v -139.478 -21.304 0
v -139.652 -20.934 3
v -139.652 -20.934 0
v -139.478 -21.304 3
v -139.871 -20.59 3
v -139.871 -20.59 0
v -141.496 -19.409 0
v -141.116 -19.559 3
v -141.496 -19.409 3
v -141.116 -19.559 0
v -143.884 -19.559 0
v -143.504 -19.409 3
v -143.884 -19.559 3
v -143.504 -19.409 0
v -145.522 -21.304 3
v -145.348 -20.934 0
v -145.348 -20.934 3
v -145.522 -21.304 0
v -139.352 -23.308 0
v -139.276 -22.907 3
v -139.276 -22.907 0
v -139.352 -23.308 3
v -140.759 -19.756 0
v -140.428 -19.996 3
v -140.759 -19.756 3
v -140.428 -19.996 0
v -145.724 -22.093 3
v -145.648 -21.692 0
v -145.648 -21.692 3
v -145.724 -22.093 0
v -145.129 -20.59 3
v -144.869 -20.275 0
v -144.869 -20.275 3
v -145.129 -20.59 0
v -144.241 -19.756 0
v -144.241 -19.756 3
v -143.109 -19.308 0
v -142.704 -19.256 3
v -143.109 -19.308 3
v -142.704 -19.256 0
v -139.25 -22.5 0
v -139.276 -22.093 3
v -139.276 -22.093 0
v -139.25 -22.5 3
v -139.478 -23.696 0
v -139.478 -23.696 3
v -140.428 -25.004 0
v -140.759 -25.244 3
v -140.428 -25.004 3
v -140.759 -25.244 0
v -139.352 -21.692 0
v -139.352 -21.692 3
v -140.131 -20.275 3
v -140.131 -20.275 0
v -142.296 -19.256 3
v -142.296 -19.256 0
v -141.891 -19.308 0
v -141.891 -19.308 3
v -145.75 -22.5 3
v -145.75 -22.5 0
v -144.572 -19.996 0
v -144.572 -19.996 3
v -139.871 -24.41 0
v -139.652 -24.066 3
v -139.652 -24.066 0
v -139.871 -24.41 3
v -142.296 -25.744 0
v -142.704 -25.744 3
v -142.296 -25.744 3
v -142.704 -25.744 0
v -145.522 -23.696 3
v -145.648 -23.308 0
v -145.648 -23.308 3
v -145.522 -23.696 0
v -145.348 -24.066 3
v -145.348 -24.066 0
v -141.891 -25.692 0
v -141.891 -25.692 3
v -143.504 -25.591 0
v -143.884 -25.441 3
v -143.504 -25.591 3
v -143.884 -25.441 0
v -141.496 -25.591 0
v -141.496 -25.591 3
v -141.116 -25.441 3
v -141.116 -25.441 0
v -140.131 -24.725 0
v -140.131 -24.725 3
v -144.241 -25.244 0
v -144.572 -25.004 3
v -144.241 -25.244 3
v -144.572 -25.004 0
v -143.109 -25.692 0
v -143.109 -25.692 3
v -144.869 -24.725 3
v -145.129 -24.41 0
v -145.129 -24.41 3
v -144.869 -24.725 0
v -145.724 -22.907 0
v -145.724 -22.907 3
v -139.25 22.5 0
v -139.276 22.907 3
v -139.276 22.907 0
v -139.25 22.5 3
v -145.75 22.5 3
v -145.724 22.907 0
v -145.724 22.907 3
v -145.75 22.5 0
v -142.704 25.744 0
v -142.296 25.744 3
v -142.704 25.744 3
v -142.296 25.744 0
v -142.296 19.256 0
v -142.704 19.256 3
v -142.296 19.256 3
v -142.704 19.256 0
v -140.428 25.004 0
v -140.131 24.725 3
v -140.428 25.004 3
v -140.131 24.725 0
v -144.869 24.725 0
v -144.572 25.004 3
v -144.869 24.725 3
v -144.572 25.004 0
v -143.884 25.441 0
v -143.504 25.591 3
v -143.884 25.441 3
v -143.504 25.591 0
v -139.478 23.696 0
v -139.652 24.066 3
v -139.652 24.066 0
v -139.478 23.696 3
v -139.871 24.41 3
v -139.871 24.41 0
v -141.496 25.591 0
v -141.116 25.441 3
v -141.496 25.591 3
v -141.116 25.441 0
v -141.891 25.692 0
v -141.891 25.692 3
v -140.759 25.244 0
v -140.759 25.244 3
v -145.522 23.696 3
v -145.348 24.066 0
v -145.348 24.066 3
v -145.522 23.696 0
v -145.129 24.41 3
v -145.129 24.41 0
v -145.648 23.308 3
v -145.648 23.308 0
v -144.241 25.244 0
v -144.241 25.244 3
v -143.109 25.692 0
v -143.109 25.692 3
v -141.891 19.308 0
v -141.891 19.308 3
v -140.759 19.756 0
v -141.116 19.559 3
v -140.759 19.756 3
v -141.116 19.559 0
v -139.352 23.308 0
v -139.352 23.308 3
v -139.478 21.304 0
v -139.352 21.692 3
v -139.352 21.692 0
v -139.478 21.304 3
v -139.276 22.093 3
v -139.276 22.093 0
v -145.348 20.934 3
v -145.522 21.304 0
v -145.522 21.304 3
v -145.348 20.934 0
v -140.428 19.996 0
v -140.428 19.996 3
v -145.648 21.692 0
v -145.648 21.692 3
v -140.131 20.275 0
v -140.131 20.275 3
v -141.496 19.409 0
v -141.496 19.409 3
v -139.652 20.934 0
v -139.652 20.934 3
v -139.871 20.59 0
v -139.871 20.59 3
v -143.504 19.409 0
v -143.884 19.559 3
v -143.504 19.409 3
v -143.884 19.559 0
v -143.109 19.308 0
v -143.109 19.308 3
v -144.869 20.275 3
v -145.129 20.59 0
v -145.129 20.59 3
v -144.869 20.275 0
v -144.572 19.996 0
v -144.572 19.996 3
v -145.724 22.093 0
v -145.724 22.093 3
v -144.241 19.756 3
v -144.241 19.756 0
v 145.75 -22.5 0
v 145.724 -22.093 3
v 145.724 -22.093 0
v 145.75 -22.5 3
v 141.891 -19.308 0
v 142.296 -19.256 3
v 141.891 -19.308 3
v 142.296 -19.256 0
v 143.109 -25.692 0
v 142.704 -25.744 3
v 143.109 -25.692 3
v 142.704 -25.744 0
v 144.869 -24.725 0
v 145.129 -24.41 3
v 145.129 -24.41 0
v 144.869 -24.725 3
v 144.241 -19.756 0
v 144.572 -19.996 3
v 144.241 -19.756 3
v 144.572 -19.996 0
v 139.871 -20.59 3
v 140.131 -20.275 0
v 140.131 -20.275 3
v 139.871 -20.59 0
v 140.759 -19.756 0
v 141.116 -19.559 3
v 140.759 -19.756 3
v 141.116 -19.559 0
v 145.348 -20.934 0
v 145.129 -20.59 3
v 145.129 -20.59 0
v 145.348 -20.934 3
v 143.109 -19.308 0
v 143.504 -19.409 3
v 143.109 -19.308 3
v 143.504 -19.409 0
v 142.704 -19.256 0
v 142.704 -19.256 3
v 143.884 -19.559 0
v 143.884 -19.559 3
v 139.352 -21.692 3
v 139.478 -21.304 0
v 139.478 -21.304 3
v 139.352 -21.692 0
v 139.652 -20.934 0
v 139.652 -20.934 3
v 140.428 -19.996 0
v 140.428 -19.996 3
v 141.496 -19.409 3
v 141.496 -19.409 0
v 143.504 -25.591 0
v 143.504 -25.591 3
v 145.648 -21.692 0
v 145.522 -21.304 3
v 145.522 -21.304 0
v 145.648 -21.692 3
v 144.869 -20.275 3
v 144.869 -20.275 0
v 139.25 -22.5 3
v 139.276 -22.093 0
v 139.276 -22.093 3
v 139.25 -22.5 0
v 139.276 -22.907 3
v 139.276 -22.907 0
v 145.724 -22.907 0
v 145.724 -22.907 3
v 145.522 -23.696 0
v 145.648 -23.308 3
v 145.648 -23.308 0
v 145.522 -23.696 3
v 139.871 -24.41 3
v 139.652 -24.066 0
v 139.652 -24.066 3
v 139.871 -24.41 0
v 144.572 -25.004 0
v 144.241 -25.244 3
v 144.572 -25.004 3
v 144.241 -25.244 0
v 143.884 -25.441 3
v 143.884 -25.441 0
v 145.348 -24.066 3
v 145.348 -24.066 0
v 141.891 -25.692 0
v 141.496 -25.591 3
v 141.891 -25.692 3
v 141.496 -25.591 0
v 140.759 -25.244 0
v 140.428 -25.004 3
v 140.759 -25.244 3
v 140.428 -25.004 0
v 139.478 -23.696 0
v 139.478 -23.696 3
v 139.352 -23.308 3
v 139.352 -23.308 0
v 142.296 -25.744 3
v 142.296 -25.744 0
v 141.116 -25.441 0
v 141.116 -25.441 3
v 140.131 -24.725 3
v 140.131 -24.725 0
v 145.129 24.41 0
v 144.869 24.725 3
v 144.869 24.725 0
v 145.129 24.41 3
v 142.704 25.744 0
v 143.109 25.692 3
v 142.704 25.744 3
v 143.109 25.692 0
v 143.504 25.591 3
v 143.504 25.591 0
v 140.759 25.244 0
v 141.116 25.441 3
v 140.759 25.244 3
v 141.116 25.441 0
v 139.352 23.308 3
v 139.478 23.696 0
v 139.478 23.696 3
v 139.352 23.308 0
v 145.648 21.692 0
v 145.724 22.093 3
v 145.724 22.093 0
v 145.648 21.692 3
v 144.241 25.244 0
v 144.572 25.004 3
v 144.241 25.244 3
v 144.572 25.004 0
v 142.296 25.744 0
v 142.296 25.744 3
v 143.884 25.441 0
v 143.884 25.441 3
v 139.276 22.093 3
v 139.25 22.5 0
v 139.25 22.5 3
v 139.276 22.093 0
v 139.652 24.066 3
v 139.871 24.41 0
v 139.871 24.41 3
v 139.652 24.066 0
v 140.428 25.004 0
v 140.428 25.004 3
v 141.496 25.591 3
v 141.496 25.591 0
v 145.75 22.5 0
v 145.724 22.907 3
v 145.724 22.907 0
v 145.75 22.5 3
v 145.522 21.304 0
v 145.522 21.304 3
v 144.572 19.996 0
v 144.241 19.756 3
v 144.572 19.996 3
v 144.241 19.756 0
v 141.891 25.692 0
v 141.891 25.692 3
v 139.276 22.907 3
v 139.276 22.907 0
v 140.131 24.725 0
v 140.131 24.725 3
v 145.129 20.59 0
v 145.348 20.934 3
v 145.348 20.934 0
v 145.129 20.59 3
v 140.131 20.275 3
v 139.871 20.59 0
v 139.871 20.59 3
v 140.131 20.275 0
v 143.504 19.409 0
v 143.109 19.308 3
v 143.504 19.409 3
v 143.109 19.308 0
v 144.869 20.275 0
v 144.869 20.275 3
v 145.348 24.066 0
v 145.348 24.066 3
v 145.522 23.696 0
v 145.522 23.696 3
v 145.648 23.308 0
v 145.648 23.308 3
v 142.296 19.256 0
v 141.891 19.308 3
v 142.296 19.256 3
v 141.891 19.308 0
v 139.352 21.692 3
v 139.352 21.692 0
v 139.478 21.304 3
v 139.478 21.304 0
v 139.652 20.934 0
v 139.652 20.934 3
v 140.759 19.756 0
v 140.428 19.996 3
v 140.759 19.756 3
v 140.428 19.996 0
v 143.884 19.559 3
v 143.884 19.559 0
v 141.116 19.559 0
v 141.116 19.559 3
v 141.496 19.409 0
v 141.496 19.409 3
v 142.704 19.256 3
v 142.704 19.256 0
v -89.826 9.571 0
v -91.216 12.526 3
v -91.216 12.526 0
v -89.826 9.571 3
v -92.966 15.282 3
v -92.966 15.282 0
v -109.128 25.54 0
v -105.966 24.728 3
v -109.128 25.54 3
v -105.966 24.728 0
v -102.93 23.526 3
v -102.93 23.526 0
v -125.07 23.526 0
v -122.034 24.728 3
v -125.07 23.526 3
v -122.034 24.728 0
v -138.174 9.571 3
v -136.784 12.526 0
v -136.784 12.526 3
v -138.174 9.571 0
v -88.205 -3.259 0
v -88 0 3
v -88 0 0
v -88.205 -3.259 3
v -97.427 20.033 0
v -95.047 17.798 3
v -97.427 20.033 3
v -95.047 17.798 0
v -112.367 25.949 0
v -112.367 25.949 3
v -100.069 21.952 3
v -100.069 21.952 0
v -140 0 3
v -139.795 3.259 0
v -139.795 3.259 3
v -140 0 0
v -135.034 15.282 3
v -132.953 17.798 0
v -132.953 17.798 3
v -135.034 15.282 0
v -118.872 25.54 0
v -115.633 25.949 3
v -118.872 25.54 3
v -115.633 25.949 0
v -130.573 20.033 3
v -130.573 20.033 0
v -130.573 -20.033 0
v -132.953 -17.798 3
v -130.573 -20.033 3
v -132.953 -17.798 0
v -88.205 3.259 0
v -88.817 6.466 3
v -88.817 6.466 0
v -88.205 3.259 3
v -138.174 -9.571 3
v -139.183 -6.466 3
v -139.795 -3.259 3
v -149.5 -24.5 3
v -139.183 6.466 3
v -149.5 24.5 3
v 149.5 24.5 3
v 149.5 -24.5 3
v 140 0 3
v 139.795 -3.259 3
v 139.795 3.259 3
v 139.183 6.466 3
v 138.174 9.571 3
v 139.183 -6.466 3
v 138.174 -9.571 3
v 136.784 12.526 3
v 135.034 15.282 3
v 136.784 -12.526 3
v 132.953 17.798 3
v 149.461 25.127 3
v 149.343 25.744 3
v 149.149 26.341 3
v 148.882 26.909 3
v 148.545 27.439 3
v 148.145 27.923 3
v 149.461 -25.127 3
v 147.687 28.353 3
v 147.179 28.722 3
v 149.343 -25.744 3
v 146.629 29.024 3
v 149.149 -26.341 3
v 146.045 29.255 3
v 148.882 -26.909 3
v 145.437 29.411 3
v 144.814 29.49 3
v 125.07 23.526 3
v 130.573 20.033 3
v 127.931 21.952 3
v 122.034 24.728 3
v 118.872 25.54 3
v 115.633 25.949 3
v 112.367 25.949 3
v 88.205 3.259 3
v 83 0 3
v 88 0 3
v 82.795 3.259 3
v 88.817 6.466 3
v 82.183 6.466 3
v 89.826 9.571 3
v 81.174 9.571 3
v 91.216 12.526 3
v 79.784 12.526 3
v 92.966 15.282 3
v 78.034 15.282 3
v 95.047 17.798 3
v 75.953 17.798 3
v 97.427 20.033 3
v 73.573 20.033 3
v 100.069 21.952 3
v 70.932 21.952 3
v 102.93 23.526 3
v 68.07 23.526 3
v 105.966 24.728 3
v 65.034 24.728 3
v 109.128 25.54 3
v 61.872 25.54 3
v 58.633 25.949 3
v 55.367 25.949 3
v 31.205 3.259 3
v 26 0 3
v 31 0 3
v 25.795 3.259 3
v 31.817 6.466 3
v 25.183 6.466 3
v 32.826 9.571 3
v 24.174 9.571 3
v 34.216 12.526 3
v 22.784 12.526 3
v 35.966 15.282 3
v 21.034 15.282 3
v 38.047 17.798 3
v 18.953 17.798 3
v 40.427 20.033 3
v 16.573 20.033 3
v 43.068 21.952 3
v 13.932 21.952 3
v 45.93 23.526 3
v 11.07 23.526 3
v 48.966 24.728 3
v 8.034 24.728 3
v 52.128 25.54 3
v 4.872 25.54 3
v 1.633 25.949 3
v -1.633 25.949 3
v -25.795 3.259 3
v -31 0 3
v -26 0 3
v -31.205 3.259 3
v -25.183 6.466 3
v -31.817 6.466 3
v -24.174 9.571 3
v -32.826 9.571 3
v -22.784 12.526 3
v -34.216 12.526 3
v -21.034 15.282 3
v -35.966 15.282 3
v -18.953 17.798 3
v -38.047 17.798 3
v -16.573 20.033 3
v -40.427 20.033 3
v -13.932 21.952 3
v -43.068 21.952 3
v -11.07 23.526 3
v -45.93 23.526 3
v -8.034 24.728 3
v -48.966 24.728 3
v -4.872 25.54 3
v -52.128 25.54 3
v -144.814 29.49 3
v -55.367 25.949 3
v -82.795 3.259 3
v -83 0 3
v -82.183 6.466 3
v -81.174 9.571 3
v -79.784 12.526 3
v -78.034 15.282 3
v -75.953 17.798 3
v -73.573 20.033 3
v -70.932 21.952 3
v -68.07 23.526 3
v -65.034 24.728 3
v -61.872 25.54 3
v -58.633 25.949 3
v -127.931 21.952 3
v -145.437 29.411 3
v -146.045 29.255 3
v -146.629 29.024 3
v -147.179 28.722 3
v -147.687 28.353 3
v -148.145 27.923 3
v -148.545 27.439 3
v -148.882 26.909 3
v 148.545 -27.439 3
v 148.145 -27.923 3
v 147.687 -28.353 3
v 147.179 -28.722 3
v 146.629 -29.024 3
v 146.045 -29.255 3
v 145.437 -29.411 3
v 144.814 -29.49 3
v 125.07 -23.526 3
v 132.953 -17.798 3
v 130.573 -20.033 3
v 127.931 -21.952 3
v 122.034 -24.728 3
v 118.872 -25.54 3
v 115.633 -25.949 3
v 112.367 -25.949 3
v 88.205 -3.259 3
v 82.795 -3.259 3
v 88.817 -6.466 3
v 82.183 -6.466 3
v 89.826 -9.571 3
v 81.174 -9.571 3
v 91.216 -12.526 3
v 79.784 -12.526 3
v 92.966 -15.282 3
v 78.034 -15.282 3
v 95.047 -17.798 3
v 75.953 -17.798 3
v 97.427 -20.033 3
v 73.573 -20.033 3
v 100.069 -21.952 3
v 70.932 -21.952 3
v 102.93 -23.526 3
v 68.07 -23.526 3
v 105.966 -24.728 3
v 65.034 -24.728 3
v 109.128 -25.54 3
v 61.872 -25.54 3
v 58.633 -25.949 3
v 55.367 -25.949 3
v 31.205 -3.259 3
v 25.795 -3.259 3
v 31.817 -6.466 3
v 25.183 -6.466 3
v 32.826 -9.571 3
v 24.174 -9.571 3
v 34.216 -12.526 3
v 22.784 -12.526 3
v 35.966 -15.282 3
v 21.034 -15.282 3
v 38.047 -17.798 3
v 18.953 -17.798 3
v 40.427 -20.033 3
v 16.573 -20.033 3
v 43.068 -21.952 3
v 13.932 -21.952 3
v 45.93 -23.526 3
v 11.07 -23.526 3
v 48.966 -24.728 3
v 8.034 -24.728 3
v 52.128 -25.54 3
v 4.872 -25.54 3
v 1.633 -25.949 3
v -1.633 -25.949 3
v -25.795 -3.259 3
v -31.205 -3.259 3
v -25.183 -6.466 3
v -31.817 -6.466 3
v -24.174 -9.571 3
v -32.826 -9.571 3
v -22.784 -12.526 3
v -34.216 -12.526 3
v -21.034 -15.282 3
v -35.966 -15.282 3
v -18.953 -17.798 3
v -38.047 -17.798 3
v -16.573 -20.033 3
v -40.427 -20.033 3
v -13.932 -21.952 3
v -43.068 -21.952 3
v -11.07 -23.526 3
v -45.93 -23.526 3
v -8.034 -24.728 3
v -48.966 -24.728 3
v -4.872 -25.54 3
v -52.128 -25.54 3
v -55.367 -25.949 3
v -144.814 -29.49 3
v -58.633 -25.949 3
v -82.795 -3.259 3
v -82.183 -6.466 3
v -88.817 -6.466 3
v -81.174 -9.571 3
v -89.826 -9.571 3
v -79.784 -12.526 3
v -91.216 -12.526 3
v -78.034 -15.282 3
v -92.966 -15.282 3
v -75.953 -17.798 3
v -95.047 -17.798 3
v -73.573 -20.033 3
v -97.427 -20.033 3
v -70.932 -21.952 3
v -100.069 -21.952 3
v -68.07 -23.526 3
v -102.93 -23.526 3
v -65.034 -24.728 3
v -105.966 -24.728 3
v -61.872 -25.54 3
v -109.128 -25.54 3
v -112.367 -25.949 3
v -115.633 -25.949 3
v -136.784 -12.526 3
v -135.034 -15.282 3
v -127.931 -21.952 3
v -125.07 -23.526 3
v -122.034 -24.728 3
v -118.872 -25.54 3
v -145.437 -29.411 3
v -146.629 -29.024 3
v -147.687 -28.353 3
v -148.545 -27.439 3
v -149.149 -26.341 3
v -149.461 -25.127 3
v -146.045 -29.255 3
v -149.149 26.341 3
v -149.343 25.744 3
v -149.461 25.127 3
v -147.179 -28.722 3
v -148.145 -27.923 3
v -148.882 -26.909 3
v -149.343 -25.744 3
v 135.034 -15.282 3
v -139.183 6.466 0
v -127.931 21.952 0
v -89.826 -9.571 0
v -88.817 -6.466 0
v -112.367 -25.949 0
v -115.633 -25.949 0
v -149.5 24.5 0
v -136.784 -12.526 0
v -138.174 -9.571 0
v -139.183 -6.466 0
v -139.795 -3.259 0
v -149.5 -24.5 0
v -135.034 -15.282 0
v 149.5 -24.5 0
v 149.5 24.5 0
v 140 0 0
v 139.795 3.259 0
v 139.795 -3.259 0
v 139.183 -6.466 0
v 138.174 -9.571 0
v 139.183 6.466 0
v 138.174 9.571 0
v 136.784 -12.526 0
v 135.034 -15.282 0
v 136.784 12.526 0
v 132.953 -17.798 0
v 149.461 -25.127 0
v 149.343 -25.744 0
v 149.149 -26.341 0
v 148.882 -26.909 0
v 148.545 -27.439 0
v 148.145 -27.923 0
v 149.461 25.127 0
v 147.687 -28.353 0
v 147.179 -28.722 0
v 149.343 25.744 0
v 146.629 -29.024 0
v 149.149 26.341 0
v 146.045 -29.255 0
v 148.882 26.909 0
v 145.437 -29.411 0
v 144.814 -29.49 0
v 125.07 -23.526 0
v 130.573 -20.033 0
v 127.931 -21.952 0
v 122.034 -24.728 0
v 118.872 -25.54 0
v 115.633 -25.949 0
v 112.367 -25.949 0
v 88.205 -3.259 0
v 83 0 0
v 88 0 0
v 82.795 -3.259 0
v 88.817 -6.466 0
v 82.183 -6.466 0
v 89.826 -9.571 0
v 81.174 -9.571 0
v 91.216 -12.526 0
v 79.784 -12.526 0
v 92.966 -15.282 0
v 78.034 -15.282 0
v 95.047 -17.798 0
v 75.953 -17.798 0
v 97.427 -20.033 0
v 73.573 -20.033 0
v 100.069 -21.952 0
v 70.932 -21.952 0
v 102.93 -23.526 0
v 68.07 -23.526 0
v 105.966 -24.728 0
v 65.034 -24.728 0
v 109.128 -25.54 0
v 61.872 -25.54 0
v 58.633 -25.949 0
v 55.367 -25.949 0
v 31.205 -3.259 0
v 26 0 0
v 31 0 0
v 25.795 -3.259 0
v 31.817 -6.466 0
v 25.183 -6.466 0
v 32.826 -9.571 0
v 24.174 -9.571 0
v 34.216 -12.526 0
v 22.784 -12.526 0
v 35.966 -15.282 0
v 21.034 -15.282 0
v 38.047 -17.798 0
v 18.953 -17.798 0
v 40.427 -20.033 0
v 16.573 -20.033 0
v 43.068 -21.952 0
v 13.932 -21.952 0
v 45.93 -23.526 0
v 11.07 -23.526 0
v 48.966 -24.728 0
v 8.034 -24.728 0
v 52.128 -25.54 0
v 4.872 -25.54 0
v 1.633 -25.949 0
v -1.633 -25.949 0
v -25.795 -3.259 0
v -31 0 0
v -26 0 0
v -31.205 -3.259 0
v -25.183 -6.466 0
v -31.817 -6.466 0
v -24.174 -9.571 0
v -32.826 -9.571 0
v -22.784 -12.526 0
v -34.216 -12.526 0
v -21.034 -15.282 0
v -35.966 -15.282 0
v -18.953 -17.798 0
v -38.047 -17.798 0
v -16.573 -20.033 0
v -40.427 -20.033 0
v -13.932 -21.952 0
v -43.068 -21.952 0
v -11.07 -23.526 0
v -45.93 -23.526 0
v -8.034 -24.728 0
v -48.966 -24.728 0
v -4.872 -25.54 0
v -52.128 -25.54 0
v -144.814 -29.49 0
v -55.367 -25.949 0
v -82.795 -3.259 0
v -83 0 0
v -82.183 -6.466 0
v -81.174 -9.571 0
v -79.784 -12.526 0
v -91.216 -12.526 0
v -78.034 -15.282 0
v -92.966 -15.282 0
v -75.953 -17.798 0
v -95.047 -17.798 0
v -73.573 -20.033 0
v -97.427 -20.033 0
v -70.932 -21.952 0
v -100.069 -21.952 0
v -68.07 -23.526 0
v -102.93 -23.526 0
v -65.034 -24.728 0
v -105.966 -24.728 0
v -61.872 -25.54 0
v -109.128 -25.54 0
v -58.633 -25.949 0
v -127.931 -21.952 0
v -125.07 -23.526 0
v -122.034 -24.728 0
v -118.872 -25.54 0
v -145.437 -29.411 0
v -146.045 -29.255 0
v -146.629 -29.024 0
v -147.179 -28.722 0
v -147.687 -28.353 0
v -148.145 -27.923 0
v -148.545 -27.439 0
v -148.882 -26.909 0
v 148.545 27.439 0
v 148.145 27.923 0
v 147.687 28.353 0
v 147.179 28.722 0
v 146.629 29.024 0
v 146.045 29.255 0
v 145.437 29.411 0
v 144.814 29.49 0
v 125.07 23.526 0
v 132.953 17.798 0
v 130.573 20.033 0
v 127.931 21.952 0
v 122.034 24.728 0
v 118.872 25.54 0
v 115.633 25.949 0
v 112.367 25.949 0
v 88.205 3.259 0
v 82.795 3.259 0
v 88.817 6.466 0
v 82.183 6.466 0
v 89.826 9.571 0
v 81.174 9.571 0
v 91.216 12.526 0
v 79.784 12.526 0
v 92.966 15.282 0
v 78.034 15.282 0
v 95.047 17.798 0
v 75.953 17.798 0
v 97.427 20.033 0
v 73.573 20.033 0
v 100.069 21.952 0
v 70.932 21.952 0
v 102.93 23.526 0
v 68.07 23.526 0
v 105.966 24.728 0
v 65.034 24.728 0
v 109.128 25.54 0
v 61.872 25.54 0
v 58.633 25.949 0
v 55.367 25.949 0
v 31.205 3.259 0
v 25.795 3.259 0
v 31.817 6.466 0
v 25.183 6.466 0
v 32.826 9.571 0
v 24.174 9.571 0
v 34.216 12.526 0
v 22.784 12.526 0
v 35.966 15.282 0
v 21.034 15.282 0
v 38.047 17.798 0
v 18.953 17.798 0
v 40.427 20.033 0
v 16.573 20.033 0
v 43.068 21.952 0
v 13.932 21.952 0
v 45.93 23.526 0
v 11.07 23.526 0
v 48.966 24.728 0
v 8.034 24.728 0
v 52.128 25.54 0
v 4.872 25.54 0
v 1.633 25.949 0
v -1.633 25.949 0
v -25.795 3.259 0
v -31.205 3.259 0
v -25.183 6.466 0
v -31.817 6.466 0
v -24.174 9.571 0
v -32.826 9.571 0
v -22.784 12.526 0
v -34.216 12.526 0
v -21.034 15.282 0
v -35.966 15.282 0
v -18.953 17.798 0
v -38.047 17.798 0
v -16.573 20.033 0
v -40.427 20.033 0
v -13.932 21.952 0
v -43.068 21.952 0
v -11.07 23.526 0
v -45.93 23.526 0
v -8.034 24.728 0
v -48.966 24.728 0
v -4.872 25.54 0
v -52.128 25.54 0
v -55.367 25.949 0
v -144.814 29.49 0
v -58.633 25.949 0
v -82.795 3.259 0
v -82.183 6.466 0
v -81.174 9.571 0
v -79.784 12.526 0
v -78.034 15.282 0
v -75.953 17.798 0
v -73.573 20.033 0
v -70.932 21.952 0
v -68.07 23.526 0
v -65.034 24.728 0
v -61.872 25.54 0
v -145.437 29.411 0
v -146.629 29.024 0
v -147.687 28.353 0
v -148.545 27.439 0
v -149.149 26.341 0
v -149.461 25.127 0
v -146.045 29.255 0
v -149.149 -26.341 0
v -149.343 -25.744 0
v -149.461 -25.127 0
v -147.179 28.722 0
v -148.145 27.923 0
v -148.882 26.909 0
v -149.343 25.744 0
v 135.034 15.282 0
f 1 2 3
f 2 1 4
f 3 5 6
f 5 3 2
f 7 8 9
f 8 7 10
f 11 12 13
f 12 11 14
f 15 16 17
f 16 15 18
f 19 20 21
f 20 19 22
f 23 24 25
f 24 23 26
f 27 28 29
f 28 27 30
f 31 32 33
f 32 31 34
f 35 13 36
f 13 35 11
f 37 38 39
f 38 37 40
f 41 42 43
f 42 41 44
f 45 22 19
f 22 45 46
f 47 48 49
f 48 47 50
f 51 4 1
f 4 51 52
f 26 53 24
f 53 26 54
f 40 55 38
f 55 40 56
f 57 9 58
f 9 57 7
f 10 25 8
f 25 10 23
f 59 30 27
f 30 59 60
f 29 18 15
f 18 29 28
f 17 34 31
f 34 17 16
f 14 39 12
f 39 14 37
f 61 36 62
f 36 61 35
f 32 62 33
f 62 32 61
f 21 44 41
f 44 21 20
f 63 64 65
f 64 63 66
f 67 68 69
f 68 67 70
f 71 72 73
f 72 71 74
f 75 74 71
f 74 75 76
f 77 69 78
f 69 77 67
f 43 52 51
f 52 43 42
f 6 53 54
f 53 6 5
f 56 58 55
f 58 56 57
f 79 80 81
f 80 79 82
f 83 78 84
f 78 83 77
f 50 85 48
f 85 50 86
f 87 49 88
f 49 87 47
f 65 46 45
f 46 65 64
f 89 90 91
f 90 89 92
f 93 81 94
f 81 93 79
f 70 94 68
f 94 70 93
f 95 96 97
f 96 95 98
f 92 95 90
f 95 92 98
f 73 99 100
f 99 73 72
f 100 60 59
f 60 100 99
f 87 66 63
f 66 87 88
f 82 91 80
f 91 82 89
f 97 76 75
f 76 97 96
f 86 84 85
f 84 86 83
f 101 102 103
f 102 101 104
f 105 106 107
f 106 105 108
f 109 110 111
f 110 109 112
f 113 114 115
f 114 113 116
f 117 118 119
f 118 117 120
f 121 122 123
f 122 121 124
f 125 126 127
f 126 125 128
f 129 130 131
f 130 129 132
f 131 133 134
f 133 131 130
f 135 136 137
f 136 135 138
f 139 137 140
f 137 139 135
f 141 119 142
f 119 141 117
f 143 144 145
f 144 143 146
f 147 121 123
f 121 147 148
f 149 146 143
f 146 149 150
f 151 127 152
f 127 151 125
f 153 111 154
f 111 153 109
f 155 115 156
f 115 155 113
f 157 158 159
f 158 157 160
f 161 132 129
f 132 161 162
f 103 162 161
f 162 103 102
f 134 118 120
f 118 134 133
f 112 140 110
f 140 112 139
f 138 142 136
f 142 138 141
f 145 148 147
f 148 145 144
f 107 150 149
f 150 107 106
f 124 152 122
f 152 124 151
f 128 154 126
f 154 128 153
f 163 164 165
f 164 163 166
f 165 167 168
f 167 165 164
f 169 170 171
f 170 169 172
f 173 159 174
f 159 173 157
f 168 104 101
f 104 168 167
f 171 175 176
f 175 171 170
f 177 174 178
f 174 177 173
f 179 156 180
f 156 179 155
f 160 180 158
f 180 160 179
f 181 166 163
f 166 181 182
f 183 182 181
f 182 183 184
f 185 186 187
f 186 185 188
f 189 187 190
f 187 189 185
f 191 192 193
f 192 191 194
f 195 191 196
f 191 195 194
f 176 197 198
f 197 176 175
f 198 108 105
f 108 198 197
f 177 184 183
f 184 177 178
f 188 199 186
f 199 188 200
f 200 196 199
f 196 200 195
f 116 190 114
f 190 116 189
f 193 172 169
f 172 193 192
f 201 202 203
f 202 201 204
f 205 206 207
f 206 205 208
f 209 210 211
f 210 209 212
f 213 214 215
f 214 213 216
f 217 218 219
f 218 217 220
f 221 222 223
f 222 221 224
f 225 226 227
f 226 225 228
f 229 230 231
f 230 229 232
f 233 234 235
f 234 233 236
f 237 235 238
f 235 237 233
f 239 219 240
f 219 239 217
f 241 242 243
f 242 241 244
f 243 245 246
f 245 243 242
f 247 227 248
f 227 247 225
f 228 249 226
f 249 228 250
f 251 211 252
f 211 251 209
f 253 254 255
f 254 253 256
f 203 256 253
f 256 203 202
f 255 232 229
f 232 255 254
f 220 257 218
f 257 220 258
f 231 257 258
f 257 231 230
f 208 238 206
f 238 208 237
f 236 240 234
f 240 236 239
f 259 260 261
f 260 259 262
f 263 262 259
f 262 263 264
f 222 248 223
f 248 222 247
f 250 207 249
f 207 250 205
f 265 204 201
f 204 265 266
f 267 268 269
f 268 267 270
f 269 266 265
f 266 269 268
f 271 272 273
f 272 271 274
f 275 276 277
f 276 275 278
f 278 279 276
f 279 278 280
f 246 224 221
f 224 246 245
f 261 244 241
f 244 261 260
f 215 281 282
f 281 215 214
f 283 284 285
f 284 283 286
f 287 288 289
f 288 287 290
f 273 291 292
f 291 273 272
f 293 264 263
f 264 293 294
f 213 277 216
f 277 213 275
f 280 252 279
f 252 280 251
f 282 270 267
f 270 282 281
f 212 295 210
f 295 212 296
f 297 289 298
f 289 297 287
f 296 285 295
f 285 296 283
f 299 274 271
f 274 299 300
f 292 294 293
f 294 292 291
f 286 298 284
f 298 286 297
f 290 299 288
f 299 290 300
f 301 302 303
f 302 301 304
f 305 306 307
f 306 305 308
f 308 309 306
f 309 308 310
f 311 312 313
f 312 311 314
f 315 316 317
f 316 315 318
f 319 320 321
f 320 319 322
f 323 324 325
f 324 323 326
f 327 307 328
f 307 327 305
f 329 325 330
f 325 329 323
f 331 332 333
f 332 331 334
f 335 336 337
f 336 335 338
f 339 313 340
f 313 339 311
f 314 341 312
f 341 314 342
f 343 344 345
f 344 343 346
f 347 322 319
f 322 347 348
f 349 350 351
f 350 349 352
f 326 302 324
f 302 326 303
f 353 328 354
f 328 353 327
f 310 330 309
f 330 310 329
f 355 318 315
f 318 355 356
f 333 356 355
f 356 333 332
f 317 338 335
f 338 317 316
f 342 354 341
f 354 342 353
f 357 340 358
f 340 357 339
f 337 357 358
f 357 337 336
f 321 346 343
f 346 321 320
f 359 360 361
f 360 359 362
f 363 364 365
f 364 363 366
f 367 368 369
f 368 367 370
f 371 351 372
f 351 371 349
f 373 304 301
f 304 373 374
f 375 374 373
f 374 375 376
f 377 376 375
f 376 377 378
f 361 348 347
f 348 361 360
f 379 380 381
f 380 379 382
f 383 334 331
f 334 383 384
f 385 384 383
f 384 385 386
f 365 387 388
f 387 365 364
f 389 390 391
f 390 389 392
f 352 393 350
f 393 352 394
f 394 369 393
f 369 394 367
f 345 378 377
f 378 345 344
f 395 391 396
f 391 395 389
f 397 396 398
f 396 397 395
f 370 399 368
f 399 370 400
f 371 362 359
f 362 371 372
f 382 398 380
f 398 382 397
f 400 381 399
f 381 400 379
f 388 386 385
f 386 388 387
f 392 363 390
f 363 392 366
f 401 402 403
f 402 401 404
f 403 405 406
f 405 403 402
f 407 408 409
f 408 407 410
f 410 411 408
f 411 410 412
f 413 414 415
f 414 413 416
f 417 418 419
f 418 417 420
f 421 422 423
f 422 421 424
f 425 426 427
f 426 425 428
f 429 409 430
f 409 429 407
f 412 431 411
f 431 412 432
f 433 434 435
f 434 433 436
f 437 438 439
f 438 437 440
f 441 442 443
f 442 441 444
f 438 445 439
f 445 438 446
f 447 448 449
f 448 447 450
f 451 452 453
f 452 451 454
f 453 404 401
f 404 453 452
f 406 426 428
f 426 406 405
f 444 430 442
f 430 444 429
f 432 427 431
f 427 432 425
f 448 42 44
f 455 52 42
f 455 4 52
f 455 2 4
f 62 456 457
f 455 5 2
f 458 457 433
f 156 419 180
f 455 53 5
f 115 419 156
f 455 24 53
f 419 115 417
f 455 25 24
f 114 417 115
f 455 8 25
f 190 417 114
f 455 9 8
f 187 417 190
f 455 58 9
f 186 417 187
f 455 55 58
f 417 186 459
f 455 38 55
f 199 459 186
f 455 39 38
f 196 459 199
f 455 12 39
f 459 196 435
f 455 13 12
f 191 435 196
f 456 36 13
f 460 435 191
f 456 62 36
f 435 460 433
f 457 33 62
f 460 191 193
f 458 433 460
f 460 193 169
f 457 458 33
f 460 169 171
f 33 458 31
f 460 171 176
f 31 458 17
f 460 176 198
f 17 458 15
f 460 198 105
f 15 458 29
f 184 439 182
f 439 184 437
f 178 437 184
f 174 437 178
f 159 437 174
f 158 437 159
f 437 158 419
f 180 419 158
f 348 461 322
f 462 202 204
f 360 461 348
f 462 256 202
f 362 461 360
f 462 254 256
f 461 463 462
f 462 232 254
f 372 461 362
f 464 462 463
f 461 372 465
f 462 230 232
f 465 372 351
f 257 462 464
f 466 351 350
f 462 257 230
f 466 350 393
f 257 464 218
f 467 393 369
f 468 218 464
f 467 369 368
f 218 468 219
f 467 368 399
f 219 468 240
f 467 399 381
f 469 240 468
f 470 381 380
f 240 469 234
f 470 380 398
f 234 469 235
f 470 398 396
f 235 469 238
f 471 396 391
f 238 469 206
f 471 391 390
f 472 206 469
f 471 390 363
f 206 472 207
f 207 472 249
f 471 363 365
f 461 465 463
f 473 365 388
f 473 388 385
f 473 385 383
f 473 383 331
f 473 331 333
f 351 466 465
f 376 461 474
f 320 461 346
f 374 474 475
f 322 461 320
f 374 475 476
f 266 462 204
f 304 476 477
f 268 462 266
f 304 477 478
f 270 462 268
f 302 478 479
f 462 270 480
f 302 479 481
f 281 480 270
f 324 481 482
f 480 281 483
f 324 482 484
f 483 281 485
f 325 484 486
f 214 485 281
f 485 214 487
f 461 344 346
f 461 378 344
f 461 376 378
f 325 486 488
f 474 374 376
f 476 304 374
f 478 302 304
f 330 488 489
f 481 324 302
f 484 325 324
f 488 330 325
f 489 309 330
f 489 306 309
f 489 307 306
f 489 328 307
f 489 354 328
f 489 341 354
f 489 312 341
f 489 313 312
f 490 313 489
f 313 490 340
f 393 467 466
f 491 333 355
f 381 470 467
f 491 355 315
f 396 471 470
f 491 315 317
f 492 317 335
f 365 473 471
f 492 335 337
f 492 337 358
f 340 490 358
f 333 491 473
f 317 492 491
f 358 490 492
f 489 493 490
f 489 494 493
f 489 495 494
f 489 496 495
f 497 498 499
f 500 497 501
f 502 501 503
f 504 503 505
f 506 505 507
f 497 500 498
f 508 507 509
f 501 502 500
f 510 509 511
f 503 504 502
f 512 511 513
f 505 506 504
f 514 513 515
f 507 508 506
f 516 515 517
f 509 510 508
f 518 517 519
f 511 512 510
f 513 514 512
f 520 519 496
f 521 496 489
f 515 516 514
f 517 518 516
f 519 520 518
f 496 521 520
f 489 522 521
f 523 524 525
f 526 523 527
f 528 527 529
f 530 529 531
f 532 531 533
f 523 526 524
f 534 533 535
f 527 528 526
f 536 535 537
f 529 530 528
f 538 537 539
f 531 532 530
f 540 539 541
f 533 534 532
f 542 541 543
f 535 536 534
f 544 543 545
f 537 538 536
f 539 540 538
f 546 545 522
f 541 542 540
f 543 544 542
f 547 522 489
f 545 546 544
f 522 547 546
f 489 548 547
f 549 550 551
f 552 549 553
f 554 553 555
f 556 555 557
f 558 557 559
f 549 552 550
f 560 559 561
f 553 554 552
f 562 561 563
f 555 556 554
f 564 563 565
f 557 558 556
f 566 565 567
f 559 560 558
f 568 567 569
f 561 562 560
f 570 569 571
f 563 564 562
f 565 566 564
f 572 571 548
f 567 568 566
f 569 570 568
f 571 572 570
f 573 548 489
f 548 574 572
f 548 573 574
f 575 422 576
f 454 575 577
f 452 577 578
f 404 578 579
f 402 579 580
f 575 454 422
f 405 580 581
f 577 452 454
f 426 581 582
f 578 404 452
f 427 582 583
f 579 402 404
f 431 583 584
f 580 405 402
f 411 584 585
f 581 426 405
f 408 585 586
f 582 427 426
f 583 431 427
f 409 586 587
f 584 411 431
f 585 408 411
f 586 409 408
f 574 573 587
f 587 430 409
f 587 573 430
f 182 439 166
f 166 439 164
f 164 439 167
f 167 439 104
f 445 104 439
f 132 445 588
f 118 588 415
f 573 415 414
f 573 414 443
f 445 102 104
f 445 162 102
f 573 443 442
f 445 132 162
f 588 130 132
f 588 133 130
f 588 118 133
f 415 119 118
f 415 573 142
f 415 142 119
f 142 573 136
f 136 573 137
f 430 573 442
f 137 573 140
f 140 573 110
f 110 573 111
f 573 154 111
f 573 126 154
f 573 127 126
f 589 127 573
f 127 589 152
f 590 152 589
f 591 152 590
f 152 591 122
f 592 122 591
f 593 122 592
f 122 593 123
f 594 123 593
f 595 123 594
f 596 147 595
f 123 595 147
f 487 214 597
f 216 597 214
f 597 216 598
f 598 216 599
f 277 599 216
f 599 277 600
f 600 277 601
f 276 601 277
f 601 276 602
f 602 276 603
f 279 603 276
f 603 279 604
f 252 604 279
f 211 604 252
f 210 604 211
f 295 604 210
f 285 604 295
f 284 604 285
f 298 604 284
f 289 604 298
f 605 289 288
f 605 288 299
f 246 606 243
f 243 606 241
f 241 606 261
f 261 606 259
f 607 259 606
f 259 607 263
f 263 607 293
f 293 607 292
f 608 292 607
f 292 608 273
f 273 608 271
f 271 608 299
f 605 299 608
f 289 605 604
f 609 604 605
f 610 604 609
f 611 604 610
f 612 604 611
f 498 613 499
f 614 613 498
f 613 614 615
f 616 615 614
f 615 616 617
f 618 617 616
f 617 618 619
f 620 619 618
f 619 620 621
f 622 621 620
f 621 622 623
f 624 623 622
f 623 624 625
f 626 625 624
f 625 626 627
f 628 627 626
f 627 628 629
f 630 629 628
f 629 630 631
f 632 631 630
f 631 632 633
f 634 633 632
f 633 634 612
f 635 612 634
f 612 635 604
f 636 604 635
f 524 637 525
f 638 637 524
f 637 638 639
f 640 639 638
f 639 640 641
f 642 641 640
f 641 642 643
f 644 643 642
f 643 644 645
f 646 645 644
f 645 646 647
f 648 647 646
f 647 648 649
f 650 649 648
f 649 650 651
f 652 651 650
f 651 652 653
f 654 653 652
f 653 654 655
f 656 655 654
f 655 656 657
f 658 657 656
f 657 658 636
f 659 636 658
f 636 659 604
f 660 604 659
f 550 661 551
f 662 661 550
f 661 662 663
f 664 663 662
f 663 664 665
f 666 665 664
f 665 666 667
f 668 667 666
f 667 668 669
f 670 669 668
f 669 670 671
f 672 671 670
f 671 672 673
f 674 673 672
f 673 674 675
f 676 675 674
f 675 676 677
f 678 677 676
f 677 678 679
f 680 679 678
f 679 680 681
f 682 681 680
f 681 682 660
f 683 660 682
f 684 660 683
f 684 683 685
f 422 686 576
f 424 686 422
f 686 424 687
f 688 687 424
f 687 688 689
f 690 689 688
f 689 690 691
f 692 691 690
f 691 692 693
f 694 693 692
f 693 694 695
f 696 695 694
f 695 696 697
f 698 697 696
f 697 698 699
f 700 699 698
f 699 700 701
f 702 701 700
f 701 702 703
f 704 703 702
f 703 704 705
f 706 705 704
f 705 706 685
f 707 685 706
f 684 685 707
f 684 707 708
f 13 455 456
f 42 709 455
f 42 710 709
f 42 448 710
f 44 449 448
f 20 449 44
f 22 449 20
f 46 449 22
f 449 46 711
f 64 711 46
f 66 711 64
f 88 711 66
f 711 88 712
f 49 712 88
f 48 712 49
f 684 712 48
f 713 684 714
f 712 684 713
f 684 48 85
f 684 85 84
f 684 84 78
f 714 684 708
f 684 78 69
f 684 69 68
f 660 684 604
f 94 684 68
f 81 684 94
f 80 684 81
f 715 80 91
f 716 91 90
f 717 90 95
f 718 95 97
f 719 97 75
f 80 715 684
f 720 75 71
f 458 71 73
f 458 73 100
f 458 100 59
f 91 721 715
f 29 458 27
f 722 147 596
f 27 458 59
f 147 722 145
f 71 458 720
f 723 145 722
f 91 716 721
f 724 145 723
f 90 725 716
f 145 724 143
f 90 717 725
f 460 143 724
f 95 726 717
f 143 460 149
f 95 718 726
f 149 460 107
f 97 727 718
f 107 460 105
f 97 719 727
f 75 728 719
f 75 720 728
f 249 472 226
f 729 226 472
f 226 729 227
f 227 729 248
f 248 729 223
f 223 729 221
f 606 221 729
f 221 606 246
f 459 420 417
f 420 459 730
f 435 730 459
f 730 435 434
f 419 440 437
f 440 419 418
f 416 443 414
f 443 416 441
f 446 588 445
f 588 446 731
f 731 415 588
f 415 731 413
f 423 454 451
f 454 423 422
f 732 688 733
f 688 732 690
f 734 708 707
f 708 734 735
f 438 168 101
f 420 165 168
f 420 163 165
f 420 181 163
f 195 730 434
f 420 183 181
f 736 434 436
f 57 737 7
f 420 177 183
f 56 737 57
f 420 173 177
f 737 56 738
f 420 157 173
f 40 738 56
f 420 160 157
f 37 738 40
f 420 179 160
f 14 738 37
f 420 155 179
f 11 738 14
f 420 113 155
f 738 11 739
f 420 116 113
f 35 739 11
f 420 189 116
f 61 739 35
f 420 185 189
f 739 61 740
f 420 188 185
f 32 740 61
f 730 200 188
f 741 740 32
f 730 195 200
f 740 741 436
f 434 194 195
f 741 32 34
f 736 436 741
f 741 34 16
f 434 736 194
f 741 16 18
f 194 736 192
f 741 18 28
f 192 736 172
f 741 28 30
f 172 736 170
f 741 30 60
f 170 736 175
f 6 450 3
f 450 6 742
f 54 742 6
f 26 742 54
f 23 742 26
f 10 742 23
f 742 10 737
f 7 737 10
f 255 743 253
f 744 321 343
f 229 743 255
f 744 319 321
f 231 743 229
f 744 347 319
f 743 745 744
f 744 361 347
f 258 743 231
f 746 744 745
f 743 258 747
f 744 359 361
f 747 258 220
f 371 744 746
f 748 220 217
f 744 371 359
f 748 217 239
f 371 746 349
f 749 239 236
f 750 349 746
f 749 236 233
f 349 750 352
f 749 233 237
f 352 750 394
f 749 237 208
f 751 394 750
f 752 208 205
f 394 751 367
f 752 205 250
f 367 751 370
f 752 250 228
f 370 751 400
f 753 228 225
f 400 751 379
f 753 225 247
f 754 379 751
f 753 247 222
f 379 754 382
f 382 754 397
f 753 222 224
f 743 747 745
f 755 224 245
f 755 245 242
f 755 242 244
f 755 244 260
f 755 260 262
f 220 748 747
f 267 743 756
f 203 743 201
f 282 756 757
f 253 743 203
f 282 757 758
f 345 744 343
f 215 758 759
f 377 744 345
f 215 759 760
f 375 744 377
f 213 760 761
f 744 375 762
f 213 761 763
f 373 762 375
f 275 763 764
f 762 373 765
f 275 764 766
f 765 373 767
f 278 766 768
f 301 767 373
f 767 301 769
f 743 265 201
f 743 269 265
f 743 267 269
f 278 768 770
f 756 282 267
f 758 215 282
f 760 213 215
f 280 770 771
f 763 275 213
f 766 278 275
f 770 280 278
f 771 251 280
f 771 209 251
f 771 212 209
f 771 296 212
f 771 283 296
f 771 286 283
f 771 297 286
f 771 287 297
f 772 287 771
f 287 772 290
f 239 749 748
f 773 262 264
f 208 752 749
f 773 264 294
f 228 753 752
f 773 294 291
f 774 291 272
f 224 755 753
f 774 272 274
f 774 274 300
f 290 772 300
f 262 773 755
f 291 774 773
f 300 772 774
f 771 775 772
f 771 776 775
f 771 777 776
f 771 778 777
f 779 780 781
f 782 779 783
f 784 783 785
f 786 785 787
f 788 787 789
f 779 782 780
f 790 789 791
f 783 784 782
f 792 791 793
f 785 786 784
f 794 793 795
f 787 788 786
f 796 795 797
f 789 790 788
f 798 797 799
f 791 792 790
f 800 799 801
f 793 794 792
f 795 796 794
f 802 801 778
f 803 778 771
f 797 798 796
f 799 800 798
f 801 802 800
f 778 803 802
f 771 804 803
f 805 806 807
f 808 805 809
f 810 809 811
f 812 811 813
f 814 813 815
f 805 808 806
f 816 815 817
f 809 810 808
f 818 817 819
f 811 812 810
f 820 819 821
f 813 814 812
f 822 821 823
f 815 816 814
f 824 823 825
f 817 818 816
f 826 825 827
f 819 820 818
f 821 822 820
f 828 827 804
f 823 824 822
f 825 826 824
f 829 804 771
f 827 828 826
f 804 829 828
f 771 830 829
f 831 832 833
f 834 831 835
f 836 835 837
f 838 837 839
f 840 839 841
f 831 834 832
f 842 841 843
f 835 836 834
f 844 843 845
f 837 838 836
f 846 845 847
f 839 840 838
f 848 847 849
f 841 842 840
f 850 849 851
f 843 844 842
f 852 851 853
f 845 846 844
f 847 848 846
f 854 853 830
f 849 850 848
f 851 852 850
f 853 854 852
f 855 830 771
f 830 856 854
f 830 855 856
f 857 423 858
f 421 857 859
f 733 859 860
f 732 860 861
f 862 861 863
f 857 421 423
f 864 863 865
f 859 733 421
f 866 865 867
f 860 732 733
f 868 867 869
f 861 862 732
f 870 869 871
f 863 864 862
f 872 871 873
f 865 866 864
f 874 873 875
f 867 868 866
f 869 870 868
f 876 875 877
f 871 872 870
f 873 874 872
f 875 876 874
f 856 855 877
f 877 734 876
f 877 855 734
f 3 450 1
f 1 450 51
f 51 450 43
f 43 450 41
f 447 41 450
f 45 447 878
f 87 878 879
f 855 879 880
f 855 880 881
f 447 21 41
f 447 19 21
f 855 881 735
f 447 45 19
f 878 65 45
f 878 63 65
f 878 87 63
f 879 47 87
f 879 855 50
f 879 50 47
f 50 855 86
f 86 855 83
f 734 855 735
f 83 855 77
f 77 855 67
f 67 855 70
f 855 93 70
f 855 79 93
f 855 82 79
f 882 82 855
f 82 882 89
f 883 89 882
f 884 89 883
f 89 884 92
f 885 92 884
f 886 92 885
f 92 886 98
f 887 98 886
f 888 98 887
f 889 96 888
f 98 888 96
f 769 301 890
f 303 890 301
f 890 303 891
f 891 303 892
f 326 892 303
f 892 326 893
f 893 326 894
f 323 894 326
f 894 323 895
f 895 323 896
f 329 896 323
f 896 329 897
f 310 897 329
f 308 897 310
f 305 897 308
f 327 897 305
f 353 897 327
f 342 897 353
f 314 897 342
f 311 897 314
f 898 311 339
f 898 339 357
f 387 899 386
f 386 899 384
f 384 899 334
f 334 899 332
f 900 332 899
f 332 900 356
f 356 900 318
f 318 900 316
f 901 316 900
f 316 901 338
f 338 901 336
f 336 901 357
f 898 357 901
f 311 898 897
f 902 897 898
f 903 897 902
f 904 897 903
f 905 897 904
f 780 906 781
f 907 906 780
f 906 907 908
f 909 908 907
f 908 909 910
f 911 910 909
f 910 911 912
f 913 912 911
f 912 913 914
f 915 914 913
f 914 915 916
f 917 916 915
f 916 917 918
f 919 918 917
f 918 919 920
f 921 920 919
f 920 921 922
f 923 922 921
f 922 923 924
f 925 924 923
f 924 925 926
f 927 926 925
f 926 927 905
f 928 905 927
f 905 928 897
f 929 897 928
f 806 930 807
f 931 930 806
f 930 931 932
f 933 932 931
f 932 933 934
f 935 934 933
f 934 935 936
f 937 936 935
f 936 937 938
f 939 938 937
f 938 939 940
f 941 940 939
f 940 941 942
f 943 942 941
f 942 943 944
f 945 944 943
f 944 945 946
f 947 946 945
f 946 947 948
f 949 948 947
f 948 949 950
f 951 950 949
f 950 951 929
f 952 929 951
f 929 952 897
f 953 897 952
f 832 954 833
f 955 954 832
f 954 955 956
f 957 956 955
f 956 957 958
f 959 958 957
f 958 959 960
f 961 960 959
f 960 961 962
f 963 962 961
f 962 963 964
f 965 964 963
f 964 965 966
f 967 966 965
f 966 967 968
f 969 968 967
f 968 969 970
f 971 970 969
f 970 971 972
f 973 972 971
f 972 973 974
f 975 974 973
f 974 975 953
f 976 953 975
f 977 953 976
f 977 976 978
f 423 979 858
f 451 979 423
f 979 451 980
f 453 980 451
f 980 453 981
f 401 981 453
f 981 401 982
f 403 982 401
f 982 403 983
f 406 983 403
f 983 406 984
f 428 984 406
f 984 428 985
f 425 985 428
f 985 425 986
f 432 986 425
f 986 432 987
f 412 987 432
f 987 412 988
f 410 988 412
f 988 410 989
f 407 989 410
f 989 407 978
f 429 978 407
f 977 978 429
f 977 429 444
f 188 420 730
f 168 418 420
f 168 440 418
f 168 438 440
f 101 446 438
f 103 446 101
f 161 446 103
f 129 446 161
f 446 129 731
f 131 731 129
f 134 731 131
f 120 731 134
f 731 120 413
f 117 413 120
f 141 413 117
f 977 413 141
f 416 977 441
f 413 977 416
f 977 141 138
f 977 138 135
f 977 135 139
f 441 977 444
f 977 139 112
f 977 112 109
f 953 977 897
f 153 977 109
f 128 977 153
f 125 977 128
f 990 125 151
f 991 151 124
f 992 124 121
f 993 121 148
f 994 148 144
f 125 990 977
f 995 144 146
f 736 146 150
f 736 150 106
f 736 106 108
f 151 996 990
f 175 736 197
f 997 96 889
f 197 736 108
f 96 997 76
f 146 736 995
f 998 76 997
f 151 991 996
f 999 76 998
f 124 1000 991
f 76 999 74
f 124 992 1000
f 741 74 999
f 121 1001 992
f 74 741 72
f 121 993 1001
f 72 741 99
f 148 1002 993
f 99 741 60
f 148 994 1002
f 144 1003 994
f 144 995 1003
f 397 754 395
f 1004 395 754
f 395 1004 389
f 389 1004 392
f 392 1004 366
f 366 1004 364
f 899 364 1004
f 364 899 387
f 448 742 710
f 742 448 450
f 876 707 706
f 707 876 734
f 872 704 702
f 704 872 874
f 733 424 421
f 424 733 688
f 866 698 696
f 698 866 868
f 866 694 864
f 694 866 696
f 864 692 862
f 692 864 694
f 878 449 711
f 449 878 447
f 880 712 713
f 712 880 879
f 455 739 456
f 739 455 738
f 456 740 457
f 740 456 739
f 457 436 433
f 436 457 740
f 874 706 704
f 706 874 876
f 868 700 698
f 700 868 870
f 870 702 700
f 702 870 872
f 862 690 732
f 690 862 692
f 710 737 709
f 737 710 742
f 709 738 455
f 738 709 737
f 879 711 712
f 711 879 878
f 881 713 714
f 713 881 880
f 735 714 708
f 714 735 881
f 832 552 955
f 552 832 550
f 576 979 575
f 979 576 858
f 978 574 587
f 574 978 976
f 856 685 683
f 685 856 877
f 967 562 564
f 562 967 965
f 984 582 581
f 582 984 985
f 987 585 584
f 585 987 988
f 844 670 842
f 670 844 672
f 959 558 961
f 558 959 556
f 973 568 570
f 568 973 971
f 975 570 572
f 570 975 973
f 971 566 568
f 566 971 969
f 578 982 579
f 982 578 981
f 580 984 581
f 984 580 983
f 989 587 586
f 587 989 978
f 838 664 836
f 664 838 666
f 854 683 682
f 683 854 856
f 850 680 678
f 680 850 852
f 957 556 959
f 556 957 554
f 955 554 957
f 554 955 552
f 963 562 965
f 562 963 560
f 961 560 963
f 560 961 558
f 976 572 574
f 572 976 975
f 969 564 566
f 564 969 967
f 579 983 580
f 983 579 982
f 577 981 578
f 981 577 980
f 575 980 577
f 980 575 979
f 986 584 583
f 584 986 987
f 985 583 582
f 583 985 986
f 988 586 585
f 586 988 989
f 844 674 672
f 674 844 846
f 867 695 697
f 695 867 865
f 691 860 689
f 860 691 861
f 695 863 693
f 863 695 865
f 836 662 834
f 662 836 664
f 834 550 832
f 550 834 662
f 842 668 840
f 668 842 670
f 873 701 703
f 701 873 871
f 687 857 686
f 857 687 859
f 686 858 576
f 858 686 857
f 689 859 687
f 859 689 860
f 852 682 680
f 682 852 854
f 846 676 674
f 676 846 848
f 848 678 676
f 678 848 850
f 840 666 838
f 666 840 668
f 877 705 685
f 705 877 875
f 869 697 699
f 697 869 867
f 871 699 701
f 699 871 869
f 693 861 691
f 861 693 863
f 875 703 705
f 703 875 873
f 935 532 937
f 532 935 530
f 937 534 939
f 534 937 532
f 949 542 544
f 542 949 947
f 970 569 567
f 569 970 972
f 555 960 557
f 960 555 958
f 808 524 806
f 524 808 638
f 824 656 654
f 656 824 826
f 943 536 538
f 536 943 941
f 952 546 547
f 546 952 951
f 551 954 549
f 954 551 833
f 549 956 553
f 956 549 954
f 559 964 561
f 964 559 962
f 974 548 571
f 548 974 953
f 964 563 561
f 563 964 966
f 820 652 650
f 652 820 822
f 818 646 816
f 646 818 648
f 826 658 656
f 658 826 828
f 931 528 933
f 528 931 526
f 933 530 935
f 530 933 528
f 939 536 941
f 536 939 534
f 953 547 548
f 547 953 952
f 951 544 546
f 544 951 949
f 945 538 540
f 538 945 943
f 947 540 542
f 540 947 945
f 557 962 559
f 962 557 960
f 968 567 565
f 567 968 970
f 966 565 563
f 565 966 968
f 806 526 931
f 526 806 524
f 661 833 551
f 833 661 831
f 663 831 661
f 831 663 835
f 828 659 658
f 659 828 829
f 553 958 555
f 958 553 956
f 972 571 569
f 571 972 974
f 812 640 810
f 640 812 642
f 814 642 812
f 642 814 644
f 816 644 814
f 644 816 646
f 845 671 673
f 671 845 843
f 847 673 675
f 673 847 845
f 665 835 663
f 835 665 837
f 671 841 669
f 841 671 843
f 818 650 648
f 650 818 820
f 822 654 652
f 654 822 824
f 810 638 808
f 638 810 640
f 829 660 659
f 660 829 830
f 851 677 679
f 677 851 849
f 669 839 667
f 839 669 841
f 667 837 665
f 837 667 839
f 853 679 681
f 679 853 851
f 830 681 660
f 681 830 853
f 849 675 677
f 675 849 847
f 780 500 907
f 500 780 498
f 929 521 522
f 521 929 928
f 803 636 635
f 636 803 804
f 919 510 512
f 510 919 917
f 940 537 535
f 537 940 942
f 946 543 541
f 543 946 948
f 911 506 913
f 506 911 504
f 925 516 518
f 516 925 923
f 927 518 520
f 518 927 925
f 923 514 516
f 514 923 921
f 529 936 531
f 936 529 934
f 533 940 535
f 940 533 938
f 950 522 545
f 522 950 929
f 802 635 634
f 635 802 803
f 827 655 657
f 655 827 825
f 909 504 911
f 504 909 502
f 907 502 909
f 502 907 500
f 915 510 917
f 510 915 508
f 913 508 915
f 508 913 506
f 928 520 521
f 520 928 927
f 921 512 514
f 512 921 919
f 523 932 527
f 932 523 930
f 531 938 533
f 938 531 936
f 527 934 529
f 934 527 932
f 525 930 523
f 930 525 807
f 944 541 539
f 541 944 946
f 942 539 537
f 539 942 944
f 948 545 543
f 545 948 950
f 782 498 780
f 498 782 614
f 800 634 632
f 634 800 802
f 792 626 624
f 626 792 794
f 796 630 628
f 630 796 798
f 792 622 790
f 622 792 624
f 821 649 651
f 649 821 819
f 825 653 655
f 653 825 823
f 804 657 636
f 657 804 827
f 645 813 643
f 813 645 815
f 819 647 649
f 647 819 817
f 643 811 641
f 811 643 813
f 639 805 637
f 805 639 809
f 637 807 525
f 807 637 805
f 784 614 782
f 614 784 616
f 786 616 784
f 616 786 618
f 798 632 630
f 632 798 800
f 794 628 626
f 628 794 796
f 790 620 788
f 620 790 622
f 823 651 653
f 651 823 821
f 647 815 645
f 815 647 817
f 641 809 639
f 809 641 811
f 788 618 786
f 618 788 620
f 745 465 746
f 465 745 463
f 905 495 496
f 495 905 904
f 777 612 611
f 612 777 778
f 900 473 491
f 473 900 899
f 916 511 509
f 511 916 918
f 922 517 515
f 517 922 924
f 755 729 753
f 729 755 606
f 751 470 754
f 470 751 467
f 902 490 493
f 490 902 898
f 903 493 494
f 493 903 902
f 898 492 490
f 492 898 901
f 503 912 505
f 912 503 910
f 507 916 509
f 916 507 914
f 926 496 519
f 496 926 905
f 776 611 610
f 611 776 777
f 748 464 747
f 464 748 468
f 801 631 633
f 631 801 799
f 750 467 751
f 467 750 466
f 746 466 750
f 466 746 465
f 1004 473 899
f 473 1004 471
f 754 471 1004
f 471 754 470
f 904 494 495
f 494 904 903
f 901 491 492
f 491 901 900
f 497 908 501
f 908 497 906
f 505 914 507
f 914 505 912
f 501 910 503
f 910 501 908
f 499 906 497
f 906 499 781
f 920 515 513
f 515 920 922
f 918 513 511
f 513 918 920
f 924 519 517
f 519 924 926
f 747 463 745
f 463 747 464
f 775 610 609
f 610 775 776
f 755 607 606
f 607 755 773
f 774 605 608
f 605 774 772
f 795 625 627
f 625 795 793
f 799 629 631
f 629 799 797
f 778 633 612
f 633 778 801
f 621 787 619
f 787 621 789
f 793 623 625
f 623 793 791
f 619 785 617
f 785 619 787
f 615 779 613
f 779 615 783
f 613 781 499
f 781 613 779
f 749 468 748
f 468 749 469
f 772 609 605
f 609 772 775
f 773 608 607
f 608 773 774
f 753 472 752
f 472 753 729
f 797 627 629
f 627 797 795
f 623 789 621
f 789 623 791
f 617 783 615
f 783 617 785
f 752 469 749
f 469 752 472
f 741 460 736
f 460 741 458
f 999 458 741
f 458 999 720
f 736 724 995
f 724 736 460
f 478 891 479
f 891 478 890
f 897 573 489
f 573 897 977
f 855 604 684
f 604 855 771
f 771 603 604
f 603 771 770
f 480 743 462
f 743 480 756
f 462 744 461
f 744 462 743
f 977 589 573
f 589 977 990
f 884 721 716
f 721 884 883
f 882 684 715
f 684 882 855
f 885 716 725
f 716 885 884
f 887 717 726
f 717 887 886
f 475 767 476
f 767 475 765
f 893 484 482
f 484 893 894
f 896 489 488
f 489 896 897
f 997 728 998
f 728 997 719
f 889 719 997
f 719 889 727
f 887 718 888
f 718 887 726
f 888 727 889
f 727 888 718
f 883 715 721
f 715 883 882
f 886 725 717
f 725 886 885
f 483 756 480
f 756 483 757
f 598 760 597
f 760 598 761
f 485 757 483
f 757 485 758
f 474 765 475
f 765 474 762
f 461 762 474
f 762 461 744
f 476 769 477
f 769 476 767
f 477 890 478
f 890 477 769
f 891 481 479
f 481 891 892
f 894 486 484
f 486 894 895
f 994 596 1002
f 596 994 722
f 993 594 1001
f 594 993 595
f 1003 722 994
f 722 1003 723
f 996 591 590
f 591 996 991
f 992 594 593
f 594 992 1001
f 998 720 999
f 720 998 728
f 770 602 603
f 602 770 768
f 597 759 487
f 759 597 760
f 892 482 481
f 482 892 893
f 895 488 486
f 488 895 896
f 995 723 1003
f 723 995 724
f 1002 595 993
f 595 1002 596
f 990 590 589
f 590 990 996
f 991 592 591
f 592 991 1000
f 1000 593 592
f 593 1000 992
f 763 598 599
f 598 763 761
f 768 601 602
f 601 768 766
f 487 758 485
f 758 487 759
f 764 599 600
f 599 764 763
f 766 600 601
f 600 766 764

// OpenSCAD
$fn = 50;


difference() {
	union() {
		hull() {
			translate(v = [-144.5000000000, 24.5000000000, 0]) {
				cylinder(h = 3, r = 5);
			}
			translate(v = [144.5000000000, 24.5000000000, 0]) {
				cylinder(h = 3, r = 5);
			}
			translate(v = [-144.5000000000, -24.5000000000, 0]) {
				cylinder(h = 3, r = 5);
			}
			translate(v = [144.5000000000, -24.5000000000, 0]) {
				cylinder(h = 3, r = 5);
			}
		}
	}
	union() {
		#translate(v = [-142.5000000000, -22.5000000000, -100.0000000000]) {
			cylinder(h = 200, r = 3.2500000000);
		}
		#translate(v = [-142.5000000000, 22.5000000000, -100.0000000000]) {
			cylinder(h = 200, r = 3.2500000000);
		}
		#translate(v = [142.5000000000, -22.5000000000, -100.0000000000]) {
			cylinder(h = 200, r = 3.2500000000);
		}
		#translate(v = [142.5000000000, 22.5000000000, -100.0000000000]) {
			cylinder(h = 200, r = 3.2500000000);
		}
		#translate(v = [-114.0000000000, 0, 0]) {
			cylinder(h = 3, r = 26.0000000000);
		}
		#translate(v = [-57.0000000000, 0, 0]) {
			cylinder(h = 3, r = 26.0000000000);
		}
		#cylinder(h = 3, r = 26.0000000000);
		#translate(v = [57.0000000000, 0, 0]) {
			cylinder(h = 3, r = 26.0000000000);
		}
		#translate(v = [114.0000000000, 0, 0]) {
			cylinder(h = 3, r = 26.0000000000);
		}
	}
}
